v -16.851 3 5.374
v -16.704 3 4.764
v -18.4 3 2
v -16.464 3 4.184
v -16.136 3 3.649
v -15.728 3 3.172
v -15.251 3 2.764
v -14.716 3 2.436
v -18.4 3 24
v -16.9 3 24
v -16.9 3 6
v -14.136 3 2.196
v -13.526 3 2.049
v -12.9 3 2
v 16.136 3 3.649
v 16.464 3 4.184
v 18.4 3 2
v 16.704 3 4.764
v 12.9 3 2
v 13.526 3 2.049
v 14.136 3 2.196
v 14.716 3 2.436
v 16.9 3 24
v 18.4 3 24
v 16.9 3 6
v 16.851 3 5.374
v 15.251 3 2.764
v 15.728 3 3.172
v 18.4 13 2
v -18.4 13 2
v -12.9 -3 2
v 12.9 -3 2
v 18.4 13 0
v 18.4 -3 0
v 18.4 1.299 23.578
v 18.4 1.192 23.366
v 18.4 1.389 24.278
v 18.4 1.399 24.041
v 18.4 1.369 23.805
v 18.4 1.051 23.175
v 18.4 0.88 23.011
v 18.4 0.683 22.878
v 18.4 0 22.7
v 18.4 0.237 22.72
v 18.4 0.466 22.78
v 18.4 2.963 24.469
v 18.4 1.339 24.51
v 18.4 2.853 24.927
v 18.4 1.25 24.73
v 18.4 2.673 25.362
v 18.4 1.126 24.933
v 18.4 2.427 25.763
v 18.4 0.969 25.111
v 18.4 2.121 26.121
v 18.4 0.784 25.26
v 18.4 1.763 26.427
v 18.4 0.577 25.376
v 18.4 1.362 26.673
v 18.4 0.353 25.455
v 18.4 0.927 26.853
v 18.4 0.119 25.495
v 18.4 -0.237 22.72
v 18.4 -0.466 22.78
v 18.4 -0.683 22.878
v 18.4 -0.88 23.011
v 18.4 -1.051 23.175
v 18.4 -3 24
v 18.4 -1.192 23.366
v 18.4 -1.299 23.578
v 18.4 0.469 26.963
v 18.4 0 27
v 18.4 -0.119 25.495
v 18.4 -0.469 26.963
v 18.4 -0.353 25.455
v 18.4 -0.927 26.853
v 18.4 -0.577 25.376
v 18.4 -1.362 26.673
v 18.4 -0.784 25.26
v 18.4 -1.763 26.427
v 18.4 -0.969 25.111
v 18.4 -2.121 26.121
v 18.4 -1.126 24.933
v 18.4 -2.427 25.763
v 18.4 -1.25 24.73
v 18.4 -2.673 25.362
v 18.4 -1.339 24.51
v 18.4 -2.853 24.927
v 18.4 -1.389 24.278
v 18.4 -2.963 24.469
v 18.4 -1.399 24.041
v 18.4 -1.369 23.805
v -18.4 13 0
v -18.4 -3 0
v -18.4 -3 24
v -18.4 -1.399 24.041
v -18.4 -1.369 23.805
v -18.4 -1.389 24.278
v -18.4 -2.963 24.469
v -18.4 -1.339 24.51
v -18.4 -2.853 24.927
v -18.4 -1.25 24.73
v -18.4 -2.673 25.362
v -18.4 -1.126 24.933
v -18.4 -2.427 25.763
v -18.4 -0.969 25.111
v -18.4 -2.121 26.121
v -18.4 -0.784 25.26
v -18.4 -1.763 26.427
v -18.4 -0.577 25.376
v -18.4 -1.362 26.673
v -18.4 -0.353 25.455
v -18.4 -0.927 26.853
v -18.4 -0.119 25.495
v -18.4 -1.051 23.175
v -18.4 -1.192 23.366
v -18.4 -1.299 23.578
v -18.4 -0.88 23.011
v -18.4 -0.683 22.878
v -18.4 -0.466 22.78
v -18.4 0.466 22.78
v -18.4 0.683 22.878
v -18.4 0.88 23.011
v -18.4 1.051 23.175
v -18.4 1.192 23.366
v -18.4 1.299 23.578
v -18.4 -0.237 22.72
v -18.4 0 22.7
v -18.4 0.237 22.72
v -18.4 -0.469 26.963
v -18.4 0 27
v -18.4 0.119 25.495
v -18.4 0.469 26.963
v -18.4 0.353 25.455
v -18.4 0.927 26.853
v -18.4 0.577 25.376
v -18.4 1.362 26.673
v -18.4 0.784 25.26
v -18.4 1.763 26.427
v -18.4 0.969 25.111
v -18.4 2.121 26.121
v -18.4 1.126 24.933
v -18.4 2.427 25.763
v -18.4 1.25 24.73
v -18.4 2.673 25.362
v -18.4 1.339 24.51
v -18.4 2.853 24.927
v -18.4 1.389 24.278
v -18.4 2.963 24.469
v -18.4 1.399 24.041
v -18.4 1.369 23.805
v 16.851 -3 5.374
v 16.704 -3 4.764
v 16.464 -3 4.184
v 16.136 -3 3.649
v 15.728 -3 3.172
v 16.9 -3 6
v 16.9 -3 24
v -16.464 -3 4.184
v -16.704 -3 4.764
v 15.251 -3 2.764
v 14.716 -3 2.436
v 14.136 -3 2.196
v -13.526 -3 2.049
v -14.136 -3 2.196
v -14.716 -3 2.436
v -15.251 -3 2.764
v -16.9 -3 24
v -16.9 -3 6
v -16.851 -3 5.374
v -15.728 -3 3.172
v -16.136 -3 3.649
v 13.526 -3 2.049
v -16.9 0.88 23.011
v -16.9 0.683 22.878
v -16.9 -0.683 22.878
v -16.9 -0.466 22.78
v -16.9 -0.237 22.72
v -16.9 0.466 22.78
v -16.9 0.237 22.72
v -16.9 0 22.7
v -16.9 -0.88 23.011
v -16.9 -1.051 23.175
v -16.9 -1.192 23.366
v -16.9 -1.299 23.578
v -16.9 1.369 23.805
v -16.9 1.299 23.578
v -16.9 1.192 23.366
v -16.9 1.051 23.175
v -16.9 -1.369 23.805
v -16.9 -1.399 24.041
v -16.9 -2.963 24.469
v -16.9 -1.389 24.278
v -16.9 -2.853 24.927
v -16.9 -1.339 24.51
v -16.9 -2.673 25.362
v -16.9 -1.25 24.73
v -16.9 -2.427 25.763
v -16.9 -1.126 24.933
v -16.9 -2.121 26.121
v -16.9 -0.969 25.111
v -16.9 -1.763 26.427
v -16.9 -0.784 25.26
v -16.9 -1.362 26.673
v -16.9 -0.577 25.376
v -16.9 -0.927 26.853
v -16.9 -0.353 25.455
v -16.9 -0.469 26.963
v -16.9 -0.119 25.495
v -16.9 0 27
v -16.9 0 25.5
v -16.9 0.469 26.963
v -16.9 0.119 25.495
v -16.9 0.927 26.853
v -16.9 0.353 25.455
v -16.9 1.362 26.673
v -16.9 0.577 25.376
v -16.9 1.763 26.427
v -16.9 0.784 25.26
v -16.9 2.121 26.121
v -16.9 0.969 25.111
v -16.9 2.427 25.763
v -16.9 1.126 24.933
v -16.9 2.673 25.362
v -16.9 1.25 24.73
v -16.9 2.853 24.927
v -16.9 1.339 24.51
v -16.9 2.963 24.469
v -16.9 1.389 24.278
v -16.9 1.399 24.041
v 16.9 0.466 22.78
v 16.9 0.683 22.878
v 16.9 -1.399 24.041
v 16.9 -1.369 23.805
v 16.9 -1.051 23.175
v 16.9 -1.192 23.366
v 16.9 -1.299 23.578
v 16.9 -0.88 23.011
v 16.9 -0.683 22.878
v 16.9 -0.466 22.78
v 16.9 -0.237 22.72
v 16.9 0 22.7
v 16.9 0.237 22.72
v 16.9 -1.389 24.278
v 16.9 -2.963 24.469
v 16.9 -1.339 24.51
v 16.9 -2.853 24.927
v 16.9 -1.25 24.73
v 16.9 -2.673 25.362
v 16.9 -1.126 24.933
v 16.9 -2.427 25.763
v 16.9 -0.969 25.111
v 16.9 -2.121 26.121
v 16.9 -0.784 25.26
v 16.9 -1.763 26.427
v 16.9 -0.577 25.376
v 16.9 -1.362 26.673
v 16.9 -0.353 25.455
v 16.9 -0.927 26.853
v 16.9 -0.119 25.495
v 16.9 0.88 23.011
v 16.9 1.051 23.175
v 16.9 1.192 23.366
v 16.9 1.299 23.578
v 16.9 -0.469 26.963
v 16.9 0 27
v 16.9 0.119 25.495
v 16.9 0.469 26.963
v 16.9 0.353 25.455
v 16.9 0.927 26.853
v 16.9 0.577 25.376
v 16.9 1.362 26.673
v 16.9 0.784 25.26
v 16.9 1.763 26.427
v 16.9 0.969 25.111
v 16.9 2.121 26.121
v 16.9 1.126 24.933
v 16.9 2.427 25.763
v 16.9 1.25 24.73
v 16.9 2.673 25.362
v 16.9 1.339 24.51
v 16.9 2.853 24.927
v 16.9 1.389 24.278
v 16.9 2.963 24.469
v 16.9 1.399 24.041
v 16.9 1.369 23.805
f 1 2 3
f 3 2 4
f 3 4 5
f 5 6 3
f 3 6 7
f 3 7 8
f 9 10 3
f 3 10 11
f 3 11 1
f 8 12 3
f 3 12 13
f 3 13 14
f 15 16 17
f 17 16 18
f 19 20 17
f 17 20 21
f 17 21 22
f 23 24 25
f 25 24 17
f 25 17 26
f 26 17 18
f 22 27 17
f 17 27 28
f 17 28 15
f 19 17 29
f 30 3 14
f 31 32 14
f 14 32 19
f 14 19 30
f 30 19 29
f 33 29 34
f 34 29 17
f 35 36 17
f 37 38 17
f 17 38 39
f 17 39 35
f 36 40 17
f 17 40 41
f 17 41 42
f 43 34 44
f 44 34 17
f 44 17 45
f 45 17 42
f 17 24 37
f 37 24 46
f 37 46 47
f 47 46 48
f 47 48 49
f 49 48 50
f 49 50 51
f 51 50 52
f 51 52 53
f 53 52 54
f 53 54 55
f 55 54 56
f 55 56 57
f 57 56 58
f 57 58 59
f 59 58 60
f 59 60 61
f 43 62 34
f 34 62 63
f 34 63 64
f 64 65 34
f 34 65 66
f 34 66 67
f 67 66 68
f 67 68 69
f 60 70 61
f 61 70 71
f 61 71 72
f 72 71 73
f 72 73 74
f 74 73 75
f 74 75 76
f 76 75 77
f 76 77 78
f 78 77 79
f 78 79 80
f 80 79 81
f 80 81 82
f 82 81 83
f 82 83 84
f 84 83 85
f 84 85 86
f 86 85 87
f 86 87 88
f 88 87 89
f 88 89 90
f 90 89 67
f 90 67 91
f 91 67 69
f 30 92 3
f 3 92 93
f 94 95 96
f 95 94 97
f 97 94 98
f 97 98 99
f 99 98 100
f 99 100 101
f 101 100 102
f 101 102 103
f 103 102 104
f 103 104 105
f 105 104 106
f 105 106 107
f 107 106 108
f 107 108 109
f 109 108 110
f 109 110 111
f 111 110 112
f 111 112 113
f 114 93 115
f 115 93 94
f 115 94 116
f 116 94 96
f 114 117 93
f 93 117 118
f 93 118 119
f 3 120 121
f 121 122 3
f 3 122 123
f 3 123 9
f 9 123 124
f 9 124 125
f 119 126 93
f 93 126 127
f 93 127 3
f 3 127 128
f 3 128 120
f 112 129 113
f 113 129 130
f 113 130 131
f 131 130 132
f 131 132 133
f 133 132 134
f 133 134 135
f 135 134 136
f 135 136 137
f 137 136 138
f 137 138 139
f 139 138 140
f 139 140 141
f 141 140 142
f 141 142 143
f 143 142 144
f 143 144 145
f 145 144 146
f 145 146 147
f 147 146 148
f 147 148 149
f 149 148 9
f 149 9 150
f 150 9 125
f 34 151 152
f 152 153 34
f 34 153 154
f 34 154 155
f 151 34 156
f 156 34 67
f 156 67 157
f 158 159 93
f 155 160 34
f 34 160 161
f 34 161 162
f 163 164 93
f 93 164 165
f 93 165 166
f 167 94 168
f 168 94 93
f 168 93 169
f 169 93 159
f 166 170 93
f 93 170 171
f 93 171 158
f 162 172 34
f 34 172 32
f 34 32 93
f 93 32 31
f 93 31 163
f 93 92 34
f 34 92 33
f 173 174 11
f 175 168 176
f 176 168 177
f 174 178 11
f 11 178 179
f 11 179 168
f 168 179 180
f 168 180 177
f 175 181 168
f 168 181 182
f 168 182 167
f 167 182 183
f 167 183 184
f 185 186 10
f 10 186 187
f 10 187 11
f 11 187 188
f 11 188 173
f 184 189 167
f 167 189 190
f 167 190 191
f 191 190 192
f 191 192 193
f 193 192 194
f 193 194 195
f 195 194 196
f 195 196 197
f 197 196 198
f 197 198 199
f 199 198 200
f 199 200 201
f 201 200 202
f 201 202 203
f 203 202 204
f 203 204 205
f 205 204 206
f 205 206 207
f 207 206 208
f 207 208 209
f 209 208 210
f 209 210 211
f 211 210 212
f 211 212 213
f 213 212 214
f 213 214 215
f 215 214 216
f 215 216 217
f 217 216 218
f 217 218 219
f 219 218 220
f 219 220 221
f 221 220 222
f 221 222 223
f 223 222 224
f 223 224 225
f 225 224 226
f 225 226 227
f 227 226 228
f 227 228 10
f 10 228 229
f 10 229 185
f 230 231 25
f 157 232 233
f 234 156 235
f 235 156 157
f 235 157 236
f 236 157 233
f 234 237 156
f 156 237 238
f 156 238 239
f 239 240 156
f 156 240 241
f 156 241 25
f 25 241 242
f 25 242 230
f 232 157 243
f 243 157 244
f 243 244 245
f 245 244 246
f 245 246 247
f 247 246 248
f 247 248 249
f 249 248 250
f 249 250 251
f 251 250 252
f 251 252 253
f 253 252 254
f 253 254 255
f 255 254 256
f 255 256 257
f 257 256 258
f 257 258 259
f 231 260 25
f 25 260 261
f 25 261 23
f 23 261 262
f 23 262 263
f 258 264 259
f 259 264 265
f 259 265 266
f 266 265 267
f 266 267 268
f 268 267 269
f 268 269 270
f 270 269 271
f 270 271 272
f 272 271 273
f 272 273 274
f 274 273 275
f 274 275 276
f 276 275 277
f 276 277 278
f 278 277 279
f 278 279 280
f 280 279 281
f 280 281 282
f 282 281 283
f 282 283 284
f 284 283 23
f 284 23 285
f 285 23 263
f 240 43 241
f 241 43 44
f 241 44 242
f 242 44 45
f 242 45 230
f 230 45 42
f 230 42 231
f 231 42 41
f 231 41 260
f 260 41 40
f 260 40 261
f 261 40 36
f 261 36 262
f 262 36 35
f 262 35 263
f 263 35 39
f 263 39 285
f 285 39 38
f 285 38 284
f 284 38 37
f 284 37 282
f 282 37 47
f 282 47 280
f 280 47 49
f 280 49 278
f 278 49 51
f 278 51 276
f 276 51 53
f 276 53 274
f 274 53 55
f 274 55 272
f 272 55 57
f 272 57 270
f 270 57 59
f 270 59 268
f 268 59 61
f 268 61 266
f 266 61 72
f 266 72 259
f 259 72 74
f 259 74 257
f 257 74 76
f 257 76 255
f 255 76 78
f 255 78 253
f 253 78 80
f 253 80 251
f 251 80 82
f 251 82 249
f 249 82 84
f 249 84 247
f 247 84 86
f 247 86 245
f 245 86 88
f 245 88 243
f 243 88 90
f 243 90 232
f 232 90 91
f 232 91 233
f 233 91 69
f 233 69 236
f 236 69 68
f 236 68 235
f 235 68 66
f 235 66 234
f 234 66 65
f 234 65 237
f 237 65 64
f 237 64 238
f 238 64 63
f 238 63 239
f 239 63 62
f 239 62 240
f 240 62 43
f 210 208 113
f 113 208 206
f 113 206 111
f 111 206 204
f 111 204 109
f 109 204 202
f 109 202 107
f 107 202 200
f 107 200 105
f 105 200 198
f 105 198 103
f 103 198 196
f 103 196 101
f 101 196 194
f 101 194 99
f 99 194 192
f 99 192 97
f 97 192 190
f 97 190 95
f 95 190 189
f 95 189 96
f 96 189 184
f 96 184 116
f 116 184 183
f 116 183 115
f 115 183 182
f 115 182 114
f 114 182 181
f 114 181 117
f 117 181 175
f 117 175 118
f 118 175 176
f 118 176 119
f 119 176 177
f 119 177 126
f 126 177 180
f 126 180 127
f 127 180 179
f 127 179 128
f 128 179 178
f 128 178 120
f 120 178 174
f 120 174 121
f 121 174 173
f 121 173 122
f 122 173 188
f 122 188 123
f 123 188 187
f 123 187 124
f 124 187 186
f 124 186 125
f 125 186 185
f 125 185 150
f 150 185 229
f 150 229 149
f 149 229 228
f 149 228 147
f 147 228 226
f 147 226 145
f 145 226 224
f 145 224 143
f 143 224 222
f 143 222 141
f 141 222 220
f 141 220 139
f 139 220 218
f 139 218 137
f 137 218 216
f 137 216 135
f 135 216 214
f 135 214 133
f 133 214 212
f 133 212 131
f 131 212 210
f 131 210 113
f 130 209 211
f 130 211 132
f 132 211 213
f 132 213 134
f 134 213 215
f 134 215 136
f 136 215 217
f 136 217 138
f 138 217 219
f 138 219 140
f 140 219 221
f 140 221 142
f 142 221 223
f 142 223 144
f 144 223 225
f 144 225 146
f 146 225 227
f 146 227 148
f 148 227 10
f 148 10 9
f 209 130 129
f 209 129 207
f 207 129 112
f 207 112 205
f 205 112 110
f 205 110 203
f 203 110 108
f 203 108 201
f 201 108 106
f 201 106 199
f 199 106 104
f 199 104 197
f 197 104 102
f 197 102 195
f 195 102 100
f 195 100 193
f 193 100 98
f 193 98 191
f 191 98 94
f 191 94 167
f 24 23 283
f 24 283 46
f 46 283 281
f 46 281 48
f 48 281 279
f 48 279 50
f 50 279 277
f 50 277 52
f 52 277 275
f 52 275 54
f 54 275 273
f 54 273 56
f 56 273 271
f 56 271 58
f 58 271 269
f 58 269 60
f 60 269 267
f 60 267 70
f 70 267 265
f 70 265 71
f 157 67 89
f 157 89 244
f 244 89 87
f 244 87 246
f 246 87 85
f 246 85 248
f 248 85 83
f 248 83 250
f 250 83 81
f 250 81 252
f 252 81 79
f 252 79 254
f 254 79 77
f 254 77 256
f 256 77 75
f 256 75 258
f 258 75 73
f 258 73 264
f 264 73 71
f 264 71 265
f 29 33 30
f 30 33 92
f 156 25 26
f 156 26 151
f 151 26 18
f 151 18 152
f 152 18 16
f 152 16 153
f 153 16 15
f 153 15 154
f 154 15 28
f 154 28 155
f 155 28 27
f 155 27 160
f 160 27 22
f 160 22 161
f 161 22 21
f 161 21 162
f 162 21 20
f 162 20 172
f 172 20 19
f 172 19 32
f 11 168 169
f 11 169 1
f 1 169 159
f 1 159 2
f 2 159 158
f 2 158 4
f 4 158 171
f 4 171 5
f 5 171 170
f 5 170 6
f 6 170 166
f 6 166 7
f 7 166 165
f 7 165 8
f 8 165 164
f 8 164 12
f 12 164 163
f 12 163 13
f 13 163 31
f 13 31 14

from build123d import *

# Parameters (mm, degrees)
SKETCH1_W           = 36.8
SKETCH1_H           = 6
BOSS_EXTRUDE1_DEPTH = 2
SKETCH2_W           = 1.5
SKETCH2_H           = 6
BOSS_EXTRUDE2_DEPTH = 25
SKETCH3_R           = 1.4
CUT_EXTRUDE1_DEPTH  = 46.741010046
FILLET1_R           = 3
SKETCH4_W           = 36.8
SKETCH4_H           = 2
BOSS_EXTRUDE3_DEPTH = 10
FILLET2_R           = 4


with BuildPart() as part:
    # Sketch1 → Boss-Extrude1 (new body)
    with BuildSketch(Plane.XY):
        Rectangle(SKETCH1_W, SKETCH1_H)
    extrude(amount=BOSS_EXTRUDE1_DEPTH)

    # Sketch2 → Boss-Extrude2 (add)
    with BuildSketch(Plane.XY.offset(2)):
        with Locations((-17.65, 0)):
            Rectangle(SKETCH2_W, SKETCH2_H)
        with Locations((17.65, 0)):
            Rectangle(SKETCH2_W, SKETCH2_H)
    extrude(amount=BOSS_EXTRUDE2_DEPTH)

    # Sketch3 → Cut-Extrude1 (cut, through all)
    with BuildSketch(Plane(origin=(18.4, 0, 0), x_dir=(0, 0, -1), z_dir=(1, 0, 0))):
        with Locations((-24.1, 0)):
            Circle(SKETCH3_R)
    extrude(amount=-CUT_EXTRUDE1_DEPTH, mode=Mode.SUBTRACT)

    # Fillet1
    fillet1_edges = [part.edges().sort_by_distance(p)[0] for p in [
        (-17.65, -3, 27),
        (17.65, -3, 27),
        (-17.65, 3, 27),
        (17.65, 3, 27),
    ]]
    fillet(fillet1_edges, radius=FILLET1_R - 0.0001)  # a hair under: the kernel refuses the full size

    # Sketch4 → Boss-Extrude3 (add)
    with BuildSketch(Plane(origin=(0, 3, 0), x_dir=(1, 0, 0), z_dir=(0, 1, 0))):
        with Locations((0, -1)):
            Rectangle(SKETCH4_W, SKETCH4_H)
    extrude(amount=BOSS_EXTRUDE3_DEPTH)

    # Fillet2
    fillet2_edges = [part.edges().sort_by_distance(p)[0] for p in [
        (16.9, 0, 2),
        (-16.9, 0, 2),
    ]]
    fillet(fillet2_edges, radius=FILLET2_R)


solid = part.part
